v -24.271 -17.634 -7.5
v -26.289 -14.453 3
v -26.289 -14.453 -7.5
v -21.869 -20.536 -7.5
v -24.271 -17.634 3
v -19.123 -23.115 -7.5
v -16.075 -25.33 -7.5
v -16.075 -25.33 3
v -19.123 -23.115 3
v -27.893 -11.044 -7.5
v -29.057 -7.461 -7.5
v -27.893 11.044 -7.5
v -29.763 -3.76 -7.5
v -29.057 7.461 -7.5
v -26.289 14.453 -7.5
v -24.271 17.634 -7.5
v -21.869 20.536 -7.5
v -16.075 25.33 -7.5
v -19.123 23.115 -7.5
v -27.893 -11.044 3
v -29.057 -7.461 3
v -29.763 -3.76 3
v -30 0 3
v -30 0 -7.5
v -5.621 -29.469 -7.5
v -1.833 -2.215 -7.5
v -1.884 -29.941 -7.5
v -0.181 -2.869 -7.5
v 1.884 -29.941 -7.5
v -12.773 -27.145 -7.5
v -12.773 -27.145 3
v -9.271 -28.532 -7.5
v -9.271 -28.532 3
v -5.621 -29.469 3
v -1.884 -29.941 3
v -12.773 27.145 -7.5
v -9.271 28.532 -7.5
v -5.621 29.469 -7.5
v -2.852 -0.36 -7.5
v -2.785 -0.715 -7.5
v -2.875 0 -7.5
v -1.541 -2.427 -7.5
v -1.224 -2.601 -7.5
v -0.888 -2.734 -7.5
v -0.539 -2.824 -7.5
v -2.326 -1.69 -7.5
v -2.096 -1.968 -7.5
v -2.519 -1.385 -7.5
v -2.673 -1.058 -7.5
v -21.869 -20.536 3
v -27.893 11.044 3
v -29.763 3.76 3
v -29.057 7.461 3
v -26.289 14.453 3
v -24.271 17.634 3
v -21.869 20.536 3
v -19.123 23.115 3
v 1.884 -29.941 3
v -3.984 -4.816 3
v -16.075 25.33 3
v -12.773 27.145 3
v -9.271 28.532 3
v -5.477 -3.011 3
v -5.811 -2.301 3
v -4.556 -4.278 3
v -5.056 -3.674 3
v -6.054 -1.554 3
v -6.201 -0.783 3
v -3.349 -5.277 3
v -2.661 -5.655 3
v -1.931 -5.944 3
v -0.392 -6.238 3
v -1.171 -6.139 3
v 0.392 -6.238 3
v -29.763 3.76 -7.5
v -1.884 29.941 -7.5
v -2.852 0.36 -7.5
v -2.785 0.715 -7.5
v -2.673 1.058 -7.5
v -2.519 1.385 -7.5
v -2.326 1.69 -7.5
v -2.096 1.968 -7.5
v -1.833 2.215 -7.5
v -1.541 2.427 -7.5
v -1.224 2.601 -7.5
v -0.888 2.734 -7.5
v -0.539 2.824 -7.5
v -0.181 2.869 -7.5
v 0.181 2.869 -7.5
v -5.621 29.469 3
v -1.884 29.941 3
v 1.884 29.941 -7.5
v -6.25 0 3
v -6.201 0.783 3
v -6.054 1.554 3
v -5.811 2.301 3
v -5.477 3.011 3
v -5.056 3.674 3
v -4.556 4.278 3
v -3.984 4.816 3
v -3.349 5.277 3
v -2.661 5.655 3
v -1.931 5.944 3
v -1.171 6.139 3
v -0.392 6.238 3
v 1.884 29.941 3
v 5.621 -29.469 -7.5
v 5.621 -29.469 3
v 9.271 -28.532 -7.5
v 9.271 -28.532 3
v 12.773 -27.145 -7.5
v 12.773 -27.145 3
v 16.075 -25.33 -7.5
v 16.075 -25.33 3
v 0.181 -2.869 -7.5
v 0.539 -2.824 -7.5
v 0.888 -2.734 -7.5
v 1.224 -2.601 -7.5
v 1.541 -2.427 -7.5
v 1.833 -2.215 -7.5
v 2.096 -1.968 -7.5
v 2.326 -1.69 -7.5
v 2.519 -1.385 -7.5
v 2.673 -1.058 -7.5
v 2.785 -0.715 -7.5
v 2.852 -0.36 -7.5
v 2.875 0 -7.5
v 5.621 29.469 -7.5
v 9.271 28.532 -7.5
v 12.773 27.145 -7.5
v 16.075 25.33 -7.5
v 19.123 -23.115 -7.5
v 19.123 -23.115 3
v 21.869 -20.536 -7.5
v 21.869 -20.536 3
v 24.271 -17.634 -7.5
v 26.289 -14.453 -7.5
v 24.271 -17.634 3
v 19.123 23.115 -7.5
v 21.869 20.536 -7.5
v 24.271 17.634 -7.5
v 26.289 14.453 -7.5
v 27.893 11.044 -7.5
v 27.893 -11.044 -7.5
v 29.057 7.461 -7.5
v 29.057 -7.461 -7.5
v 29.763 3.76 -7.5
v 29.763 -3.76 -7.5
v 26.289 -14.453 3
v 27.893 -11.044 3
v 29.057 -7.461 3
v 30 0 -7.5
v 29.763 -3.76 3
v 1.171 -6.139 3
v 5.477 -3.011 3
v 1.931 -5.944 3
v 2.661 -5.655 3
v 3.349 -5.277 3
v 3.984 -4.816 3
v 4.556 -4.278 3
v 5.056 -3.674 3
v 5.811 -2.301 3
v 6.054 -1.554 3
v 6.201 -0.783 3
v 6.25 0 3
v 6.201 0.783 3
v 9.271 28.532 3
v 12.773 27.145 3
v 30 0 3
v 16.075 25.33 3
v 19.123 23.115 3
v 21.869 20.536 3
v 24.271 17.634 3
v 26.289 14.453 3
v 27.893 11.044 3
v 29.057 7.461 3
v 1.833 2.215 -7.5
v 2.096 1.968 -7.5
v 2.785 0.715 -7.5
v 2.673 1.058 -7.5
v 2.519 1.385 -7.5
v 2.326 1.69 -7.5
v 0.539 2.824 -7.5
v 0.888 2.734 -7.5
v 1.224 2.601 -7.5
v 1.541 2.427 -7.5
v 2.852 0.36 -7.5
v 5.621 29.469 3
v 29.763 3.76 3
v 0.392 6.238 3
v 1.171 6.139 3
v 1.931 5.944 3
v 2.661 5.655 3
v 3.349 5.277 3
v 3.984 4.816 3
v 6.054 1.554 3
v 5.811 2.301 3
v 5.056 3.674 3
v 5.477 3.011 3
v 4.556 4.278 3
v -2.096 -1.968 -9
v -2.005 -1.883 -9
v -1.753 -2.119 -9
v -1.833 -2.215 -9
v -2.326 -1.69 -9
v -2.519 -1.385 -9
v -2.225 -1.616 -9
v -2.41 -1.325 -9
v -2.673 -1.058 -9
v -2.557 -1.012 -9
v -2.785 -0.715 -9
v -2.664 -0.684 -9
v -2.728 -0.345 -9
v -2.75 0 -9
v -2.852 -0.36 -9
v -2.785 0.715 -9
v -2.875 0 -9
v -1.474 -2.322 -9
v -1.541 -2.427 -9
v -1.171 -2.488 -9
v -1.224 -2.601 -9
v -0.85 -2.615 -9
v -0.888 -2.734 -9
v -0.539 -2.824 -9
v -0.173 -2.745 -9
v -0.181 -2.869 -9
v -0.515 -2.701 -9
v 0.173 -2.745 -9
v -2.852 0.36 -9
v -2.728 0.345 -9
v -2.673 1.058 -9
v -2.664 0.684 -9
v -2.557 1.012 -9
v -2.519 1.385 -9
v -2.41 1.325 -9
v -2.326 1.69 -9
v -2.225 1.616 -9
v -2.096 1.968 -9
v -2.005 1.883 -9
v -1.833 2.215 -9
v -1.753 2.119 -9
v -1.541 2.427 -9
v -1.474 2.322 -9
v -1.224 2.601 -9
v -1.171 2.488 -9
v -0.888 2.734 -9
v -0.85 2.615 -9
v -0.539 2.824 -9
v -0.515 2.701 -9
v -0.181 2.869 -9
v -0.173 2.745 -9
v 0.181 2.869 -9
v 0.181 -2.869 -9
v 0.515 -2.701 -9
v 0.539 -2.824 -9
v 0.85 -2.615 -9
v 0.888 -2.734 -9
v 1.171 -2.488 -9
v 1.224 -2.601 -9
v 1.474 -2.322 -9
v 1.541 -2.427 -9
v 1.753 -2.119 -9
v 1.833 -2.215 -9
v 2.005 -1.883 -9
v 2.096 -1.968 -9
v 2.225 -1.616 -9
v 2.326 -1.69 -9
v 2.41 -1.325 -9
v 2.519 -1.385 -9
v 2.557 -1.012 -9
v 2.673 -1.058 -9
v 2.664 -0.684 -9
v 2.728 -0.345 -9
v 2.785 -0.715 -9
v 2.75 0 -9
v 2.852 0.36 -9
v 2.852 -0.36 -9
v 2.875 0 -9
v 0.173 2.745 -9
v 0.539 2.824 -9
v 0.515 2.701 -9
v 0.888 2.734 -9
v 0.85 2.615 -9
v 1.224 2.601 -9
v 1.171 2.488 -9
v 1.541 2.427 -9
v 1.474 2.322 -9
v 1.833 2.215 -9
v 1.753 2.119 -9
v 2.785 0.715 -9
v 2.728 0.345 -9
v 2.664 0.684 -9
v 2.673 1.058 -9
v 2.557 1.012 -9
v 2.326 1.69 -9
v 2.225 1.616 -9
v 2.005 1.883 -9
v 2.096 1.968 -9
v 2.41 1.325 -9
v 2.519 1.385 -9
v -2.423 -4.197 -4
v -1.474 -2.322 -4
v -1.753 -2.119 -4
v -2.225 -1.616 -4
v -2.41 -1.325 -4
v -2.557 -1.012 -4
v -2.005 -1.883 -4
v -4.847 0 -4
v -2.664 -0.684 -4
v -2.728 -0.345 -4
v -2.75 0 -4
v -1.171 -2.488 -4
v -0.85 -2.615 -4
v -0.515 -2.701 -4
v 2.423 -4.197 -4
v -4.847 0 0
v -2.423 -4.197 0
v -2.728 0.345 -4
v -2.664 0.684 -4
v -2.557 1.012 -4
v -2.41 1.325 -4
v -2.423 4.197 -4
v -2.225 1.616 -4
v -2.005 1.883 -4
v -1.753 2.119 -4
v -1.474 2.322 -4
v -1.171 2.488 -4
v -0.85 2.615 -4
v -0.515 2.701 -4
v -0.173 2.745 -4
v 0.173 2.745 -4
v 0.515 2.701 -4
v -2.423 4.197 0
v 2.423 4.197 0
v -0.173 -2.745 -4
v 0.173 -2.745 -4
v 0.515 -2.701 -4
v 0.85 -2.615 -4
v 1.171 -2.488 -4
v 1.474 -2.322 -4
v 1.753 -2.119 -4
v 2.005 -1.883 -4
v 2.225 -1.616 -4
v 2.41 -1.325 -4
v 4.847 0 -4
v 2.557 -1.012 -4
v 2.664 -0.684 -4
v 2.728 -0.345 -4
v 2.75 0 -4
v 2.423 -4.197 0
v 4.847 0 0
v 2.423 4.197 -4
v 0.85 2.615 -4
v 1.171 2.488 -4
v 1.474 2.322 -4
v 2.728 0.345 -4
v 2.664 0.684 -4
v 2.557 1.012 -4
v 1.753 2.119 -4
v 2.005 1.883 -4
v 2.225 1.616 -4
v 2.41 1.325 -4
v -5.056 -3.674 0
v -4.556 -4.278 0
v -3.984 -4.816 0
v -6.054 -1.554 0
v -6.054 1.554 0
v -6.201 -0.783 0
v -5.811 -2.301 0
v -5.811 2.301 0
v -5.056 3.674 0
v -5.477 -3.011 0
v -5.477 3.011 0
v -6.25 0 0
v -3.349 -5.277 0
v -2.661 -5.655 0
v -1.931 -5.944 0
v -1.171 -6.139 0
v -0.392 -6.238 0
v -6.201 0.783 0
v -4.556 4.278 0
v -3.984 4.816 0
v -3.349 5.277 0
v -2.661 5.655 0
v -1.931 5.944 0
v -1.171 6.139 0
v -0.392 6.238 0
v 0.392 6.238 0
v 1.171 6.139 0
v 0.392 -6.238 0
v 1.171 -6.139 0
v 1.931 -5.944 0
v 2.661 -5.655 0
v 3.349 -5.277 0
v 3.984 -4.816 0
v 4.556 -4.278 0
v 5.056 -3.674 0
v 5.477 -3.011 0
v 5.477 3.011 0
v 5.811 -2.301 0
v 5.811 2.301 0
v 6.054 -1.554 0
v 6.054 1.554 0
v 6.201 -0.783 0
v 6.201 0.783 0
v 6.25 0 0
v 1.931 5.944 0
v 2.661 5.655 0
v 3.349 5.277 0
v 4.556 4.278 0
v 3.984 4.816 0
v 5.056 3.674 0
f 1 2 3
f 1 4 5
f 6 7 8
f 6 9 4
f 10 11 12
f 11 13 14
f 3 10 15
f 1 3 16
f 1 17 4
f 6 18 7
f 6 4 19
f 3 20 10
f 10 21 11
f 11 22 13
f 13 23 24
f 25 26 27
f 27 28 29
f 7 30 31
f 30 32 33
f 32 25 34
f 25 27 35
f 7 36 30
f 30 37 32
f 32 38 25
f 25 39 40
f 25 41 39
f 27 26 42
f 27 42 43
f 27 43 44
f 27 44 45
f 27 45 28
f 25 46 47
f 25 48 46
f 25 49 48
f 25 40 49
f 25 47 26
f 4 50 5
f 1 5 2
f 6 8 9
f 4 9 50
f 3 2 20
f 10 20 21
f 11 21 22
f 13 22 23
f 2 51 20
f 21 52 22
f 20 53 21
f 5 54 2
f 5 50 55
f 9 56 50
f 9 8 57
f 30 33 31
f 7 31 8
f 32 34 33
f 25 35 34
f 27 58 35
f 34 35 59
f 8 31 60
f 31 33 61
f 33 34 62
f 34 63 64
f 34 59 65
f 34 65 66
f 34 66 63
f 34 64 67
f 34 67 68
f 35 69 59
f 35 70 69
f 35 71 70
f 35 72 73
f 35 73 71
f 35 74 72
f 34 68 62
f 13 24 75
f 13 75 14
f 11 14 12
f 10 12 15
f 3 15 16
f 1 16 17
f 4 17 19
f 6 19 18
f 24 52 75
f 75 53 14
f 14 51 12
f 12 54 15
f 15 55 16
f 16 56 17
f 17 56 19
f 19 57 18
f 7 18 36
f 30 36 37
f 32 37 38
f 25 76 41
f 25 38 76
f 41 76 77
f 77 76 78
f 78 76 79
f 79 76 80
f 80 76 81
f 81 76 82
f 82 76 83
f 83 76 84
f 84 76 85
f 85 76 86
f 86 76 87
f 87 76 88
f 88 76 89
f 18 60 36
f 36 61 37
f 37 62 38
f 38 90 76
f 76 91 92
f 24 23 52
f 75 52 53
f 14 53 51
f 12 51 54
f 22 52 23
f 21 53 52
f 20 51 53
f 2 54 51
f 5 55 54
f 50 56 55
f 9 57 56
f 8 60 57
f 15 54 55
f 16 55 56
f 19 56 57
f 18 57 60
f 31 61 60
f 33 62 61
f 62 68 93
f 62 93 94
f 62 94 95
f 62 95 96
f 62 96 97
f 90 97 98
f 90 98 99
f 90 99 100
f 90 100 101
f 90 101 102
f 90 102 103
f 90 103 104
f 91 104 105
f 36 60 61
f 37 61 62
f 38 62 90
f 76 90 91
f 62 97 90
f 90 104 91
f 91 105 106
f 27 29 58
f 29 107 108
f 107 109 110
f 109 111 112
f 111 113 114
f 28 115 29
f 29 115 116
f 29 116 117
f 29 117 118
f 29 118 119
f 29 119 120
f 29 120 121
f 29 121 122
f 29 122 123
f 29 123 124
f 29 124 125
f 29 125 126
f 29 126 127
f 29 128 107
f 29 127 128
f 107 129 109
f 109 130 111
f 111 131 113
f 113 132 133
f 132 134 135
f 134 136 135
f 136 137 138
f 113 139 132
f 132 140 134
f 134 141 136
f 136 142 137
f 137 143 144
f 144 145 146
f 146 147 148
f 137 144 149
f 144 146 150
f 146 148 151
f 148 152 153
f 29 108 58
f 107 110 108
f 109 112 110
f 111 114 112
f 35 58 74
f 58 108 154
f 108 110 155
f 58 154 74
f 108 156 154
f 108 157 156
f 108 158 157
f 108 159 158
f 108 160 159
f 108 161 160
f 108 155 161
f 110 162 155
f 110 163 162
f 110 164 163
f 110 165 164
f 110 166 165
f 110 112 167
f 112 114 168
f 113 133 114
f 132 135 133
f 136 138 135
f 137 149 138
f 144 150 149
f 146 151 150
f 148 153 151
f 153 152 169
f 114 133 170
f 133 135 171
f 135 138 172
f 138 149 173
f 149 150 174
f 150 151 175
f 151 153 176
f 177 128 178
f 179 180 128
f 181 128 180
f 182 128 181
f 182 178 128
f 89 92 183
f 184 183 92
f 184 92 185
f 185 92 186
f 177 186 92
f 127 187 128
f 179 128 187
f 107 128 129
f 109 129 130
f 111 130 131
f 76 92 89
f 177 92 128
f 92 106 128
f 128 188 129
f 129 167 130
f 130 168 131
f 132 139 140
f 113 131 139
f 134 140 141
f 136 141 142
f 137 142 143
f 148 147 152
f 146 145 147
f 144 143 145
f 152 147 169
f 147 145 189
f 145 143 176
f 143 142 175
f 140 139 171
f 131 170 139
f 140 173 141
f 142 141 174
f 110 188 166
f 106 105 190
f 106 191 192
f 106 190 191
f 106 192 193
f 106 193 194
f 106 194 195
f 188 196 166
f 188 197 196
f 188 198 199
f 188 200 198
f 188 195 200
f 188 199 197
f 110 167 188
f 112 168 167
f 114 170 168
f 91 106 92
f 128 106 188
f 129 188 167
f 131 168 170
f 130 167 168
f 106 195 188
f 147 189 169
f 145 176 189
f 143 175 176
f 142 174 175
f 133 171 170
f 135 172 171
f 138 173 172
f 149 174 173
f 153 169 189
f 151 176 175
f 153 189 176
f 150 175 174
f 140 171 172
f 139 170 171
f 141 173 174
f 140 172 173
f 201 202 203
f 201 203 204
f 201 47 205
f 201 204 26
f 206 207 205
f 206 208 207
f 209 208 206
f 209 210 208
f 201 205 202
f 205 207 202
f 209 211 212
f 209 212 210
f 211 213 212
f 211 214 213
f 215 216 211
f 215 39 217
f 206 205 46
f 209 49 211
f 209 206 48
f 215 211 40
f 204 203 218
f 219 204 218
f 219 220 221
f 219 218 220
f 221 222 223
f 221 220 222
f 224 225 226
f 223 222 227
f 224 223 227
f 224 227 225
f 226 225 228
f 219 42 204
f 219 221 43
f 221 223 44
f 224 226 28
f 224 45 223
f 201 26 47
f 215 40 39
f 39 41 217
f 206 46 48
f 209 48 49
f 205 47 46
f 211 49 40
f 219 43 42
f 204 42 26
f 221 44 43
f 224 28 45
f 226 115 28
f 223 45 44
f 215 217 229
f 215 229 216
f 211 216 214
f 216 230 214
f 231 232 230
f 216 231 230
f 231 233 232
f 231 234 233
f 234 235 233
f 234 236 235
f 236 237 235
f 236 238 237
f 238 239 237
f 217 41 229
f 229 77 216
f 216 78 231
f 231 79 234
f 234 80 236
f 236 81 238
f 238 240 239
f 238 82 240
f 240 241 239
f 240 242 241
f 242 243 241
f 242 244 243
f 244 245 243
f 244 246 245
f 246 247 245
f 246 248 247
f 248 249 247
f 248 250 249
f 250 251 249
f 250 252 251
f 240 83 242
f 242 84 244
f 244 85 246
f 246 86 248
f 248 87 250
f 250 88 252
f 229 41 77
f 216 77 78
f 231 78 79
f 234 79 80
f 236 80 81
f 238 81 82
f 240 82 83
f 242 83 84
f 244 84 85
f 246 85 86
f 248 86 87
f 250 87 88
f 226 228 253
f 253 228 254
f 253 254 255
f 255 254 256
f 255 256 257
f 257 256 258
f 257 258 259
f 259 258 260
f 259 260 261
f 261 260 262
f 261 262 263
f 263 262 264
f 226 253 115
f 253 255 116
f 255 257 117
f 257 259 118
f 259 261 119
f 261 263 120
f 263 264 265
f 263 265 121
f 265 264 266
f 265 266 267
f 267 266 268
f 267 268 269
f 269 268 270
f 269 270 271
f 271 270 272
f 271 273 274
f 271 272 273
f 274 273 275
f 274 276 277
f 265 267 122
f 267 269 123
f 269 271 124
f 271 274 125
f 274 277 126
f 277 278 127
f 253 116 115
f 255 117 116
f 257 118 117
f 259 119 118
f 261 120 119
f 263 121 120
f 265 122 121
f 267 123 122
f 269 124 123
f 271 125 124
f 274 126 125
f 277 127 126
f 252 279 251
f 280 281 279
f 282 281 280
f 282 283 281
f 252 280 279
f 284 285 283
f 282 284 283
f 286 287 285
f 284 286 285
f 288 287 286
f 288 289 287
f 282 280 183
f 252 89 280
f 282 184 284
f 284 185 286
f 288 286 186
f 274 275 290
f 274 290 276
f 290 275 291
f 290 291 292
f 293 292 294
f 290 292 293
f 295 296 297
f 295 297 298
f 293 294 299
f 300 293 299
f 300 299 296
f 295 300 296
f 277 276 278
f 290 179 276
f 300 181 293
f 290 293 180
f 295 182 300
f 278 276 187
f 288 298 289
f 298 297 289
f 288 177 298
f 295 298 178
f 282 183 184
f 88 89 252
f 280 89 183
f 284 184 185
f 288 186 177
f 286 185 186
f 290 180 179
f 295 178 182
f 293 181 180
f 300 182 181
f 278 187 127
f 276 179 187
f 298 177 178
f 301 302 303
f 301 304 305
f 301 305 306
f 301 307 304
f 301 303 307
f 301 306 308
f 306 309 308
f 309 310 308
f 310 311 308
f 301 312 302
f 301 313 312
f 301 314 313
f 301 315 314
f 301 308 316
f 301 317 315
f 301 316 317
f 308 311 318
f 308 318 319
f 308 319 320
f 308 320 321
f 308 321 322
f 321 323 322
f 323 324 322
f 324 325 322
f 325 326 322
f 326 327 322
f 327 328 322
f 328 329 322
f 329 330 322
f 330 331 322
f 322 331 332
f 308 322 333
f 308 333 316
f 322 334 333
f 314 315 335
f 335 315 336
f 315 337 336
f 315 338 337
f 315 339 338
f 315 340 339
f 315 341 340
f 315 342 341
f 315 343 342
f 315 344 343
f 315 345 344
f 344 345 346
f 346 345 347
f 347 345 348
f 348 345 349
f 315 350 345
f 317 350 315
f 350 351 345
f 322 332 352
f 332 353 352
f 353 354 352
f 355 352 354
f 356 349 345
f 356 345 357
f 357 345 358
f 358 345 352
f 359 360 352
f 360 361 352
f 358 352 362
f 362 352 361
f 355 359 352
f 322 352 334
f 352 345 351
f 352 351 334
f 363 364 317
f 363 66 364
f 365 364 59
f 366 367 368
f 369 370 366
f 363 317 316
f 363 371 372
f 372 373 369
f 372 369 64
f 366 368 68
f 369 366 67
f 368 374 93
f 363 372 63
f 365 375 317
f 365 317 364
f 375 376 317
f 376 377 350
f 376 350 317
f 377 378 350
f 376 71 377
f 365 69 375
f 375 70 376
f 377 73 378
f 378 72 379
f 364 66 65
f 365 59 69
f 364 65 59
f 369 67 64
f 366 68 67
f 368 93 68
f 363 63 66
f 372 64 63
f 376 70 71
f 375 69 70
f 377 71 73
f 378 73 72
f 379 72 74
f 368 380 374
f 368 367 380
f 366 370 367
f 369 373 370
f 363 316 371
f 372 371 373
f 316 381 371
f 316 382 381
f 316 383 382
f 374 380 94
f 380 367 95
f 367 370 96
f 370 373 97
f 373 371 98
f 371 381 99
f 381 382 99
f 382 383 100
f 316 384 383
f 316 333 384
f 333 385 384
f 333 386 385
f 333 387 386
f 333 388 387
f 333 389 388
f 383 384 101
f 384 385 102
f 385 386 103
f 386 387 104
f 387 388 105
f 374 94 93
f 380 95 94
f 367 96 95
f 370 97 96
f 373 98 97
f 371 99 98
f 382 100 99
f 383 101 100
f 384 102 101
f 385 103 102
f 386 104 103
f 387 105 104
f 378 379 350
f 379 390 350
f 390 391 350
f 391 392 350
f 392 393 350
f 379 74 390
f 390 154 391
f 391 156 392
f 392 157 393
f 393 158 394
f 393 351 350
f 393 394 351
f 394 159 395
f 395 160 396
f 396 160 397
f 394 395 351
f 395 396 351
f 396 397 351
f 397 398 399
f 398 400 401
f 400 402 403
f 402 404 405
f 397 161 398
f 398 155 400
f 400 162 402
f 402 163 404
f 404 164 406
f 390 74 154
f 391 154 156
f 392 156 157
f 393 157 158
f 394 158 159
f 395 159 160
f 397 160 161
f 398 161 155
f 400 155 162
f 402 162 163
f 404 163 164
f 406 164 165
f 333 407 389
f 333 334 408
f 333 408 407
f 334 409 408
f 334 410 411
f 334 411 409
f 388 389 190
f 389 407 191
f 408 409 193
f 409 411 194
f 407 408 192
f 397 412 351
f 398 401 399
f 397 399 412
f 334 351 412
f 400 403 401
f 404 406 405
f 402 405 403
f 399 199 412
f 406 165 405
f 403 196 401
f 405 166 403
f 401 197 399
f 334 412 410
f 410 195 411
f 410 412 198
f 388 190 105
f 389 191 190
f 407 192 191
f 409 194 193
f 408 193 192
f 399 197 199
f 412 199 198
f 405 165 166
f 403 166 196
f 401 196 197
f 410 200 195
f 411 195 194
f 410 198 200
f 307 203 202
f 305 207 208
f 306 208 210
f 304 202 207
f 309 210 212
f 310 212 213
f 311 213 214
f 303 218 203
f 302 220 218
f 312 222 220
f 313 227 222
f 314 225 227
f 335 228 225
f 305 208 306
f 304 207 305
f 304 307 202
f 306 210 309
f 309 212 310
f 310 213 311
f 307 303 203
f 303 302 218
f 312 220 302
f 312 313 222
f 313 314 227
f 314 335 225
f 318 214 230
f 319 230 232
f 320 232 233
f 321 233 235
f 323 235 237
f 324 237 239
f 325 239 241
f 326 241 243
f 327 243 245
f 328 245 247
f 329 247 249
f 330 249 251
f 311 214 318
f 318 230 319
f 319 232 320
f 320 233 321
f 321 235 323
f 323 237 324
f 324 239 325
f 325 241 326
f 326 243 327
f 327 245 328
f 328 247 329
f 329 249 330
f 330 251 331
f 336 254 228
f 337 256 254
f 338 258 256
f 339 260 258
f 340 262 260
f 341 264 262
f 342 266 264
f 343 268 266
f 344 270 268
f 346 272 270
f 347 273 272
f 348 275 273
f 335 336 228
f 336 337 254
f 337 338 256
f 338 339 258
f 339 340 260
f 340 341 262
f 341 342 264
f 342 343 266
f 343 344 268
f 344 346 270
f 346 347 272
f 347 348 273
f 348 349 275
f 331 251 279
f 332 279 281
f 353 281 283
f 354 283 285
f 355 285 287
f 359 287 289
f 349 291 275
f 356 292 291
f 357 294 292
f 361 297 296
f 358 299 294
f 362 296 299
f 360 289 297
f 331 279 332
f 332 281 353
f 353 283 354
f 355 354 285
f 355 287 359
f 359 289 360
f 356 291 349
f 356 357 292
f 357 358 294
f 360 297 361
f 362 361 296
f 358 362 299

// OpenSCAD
$fn = 50;

difference() {
	union() {
		translate(v = [0, 0, -7.5]) {
			cylinder(h = 10.5, r = 30.0);
		}
		#translate(v = [0, 0, -9.0]) {
			cylinder(h = 9, r = 2.875);
		}
	}
	union() {
		translate(v = [0, 0, 0]) {
			rotate(a = [0, 0, 0]) {
				difference() {
					union() {
						translate(v = [0, 0, -4]) {
							linear_extrude(height = 4) {
								polygon(points = [[4.8468, 0.0], [2.4234000000000004, 4.197451927062417], [-2.423399999999999, 4.197451927062417], [-4.8468, 5.935618106107392e-16], [-2.423400000000002, -4.197451927062416], [2.423399999999997, -4.197451927062419]]);
							}
						}
					}
					union();
				}
			}
		}
		#cylinder(h = 3, r = 6.25);
		#translate(v = [0, 0, -100.0]) {
			cylinder(h = 200, r = 2.75);
		}
	}
}
